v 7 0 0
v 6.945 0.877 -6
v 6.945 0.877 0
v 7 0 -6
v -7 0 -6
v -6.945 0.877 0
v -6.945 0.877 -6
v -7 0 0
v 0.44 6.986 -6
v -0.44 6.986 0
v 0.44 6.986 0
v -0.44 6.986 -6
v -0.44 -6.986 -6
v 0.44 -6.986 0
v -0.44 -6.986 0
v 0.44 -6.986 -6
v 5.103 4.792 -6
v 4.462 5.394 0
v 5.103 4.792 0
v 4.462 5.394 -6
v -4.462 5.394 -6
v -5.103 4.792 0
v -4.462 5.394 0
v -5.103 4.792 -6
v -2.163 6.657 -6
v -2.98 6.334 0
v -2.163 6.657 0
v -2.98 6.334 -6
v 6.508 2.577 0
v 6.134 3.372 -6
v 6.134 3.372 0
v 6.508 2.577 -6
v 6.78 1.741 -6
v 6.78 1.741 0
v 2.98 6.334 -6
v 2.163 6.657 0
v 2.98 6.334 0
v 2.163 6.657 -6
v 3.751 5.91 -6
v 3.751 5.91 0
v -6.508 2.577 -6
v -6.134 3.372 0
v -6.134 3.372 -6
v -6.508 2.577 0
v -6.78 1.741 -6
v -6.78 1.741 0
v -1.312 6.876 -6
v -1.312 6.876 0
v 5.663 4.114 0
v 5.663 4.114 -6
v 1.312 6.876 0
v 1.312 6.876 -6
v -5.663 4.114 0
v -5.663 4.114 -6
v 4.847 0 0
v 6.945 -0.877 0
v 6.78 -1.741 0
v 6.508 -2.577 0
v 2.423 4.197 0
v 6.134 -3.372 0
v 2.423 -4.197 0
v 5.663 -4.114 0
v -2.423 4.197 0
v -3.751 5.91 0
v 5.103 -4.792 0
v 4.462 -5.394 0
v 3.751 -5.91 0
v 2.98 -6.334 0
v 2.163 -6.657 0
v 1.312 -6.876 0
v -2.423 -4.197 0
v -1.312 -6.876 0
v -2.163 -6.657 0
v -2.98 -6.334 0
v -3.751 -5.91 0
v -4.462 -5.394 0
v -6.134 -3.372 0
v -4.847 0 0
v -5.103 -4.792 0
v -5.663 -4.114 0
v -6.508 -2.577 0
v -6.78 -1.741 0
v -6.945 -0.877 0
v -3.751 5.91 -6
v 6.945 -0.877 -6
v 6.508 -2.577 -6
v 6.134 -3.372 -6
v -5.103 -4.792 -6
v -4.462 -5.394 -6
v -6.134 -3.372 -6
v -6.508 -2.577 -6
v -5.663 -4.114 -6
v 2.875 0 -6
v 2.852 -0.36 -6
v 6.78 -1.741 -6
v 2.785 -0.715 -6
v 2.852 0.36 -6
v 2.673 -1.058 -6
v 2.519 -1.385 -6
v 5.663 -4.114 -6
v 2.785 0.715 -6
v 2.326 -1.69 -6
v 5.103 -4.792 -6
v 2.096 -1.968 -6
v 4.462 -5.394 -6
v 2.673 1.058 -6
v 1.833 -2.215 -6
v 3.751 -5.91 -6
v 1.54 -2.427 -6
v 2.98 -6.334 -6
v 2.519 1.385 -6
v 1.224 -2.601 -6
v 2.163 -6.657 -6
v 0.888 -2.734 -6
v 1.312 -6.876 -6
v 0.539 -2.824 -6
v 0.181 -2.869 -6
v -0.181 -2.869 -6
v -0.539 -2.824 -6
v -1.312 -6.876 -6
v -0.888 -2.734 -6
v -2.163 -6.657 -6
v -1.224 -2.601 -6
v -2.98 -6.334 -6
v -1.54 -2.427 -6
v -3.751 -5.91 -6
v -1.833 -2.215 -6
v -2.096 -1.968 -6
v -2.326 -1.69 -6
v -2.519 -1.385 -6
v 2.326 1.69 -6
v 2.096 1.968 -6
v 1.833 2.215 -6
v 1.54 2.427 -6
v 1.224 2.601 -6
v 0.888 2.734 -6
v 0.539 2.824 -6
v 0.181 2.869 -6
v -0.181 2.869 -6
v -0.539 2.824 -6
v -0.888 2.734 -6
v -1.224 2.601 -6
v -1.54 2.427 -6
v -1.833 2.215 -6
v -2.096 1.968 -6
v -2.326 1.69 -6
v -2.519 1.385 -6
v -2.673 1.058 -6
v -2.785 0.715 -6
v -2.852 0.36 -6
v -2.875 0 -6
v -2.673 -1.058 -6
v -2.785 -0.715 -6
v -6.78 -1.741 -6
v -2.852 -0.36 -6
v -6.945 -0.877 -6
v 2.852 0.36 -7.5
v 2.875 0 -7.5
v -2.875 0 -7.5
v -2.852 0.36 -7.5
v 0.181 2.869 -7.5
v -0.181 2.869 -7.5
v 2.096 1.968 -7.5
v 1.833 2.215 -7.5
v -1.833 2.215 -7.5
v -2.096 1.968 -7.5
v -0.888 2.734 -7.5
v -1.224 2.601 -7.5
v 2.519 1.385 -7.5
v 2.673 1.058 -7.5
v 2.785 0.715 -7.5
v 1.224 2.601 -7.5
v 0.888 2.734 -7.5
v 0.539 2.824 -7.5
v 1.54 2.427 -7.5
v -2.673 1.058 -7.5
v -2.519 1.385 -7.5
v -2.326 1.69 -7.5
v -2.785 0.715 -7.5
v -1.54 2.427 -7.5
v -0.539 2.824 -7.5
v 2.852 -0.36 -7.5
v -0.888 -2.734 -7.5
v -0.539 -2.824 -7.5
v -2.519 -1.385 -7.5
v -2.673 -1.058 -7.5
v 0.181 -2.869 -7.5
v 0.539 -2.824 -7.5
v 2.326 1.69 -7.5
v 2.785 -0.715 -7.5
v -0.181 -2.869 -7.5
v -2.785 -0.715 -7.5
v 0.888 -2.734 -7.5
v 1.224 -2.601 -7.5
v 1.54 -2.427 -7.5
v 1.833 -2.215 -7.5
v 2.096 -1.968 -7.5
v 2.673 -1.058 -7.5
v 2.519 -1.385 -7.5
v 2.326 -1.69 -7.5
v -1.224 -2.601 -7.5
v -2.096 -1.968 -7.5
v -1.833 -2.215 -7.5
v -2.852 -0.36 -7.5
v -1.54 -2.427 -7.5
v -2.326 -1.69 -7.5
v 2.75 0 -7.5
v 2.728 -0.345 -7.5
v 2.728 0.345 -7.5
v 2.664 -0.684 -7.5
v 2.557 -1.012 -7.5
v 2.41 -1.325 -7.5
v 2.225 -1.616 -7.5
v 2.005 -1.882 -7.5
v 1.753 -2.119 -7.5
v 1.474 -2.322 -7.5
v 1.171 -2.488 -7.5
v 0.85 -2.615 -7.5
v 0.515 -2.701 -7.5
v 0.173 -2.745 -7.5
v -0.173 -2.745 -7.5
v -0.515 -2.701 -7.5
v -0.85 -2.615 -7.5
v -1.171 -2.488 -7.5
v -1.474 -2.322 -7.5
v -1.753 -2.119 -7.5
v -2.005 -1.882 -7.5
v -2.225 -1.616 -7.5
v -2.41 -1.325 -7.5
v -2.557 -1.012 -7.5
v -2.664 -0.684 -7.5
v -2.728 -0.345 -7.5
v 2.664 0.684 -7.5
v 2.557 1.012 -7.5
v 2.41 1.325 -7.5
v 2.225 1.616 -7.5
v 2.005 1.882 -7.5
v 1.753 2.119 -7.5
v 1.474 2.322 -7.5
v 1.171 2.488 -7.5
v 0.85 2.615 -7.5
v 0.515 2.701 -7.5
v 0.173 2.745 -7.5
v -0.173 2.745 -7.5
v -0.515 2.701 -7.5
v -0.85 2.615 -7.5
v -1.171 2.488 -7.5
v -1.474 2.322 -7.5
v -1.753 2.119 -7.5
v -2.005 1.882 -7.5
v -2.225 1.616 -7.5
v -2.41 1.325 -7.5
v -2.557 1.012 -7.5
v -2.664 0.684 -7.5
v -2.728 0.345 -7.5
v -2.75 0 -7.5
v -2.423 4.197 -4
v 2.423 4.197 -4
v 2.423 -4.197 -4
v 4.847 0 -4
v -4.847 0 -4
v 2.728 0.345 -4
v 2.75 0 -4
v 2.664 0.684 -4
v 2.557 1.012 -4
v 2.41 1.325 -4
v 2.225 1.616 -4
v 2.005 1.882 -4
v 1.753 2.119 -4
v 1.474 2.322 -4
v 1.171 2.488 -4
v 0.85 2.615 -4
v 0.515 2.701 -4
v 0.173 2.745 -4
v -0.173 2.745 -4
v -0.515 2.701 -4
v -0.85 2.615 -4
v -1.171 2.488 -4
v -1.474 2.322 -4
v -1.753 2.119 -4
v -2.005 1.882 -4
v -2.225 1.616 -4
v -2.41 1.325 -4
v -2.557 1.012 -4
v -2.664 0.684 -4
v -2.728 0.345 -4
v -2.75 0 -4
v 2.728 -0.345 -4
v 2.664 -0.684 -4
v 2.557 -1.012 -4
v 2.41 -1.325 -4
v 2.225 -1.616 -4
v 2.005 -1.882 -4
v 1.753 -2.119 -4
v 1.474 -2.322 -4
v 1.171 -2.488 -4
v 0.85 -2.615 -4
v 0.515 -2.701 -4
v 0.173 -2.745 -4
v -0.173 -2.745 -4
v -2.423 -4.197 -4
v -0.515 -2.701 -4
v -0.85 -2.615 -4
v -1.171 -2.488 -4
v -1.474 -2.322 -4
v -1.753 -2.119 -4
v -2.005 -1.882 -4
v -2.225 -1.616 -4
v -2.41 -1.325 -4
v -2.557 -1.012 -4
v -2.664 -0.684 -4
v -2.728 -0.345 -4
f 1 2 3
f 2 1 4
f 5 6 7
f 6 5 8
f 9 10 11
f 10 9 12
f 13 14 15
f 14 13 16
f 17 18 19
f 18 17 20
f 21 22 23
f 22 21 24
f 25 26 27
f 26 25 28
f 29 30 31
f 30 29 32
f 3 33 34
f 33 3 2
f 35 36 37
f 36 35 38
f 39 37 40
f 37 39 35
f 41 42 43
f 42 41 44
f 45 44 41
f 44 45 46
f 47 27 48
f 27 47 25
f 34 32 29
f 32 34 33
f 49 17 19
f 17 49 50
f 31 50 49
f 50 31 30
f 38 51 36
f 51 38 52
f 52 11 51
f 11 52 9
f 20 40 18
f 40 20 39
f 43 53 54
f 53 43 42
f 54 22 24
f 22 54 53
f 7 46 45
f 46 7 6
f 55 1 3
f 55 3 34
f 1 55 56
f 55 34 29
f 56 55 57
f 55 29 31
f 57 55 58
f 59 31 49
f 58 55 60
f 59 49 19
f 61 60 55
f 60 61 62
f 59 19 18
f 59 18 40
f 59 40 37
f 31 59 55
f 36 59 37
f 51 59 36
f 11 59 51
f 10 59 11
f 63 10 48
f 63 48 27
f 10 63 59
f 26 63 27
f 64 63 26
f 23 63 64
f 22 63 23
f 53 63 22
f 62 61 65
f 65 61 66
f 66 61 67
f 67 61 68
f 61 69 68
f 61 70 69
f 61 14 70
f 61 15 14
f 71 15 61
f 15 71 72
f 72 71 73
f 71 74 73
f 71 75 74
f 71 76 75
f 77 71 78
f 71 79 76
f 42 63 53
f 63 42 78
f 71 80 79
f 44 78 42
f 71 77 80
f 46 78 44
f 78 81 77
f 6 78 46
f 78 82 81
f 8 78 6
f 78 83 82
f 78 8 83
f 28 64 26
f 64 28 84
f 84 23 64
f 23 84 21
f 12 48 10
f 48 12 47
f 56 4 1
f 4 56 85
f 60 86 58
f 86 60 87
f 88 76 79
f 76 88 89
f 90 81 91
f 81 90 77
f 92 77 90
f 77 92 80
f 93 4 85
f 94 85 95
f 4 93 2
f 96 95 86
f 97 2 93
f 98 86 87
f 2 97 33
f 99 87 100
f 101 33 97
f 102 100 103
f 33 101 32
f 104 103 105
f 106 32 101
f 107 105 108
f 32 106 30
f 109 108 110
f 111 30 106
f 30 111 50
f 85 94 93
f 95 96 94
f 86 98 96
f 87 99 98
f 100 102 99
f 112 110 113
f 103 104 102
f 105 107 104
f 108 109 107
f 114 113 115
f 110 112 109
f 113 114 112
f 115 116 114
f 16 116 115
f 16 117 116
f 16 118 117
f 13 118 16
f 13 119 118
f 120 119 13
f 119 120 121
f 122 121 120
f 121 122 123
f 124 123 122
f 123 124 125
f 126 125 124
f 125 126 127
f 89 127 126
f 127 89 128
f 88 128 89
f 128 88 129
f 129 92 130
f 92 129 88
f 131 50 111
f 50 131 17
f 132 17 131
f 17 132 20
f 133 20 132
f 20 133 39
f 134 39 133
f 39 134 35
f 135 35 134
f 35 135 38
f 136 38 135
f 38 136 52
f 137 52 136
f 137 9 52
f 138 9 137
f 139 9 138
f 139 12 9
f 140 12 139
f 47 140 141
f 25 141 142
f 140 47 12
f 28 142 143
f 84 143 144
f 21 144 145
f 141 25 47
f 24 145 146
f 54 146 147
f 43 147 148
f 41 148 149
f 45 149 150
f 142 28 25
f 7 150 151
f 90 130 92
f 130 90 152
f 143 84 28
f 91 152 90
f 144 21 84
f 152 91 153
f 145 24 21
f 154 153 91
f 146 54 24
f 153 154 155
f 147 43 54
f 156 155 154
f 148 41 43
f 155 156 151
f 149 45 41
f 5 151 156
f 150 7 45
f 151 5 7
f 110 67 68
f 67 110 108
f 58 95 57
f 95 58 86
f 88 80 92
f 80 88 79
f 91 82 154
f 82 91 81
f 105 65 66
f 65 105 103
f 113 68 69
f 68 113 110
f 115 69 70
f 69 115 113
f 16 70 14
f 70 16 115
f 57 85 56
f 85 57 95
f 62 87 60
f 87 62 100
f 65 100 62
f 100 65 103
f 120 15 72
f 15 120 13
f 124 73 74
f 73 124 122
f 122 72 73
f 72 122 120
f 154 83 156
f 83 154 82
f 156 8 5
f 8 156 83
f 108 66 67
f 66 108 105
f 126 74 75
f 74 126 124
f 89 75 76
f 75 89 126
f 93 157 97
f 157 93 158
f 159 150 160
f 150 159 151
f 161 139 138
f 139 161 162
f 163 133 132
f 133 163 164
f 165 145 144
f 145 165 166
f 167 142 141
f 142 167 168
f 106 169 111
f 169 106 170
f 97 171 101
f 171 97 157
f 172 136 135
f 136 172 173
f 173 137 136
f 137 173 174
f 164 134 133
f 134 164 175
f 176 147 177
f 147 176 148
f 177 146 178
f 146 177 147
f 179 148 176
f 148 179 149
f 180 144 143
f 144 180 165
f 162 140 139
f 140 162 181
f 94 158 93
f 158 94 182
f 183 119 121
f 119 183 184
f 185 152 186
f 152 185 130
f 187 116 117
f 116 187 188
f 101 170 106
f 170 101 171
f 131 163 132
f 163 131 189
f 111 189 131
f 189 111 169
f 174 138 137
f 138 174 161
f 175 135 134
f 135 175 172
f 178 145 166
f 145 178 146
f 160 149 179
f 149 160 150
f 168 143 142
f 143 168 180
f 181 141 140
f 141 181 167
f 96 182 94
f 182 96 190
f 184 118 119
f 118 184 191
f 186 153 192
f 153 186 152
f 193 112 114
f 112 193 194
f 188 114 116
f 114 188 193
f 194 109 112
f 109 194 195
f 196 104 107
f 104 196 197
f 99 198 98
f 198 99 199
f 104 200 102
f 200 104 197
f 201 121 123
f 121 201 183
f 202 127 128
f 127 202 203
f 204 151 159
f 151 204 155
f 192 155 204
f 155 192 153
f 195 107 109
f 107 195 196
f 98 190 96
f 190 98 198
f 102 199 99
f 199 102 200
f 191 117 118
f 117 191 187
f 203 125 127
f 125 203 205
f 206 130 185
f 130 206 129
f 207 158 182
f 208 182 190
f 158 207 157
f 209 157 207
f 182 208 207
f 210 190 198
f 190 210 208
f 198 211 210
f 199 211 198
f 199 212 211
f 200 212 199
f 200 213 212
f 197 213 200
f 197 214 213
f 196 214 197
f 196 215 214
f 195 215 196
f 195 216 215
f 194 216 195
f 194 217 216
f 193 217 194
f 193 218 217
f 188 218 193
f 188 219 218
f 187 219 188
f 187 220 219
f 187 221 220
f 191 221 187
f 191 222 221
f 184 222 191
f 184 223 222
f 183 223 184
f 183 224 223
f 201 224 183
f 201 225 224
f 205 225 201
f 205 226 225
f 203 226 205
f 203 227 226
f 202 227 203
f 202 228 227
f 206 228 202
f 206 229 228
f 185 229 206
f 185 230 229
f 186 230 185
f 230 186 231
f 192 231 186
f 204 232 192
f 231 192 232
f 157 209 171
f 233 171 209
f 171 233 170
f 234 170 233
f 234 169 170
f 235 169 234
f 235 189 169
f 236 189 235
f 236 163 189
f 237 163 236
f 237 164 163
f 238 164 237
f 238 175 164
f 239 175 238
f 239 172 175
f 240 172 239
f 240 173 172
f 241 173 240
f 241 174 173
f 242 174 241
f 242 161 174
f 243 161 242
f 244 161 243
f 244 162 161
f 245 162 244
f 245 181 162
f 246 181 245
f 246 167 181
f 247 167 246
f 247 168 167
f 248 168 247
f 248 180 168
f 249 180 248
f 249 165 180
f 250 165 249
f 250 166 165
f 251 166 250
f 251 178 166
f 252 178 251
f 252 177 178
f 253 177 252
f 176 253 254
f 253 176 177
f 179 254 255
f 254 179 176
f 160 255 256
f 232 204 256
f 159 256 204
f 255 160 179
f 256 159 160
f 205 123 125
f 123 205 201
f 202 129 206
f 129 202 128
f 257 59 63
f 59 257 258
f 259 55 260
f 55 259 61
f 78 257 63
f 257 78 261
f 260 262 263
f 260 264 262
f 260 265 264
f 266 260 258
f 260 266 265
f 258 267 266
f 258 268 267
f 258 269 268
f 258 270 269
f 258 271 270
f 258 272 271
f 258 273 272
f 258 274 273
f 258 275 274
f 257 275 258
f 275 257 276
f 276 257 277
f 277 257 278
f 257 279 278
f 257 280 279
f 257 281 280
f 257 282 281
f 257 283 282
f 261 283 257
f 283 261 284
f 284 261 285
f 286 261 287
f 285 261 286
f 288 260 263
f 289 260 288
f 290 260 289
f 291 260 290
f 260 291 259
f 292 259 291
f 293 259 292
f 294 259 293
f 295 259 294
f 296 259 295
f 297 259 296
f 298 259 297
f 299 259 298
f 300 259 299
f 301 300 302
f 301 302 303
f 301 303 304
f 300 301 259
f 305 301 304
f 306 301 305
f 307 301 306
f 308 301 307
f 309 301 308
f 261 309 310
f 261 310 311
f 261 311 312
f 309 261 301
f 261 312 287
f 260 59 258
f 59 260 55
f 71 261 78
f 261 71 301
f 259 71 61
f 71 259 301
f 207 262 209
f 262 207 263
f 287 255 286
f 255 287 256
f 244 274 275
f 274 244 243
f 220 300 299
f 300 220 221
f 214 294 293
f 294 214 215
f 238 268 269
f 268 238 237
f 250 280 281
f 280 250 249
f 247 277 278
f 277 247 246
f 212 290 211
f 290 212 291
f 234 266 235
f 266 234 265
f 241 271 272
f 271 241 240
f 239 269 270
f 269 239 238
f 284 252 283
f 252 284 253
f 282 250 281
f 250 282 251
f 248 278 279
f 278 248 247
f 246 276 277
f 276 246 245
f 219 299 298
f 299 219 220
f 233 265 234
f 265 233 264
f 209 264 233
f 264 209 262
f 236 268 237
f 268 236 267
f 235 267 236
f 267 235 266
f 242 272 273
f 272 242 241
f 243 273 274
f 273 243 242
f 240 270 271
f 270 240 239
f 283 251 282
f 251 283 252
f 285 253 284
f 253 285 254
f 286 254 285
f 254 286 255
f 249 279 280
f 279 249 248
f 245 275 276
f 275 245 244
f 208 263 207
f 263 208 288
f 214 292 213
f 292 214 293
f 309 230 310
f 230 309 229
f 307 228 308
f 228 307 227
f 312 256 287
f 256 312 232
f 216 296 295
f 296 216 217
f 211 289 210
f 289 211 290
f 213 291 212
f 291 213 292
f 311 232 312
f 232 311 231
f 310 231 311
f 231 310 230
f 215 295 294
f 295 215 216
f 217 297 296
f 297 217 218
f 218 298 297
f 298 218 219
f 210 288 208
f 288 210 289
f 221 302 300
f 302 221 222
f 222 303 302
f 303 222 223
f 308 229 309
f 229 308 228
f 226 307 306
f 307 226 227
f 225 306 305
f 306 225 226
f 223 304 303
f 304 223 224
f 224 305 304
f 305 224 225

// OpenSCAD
$fn = 50;


difference() {
	union() {
		translate(v = [0, 0, -6.0000000000]) {
			cylinder(h = 6.0000000000, r = 7.0000000000);
		}
		translate(v = [0, 0, -7.5000000000]) {
			cylinder(h = 7.5000000000, r = 2.8750000000);
		}
	}
	union() {
		translate(v = [0, 0, 0]) {
			rotate(a = [0, 0, 0]) {
				difference() {
					union() {
						translate(v = [0, 0, -4]) {
							linear_extrude(height = 4) {
								polygon(points = [[4.8468000000, 0.0000000000], [2.4234000000, 4.1974519271], [-2.4234000000, 4.1974519271], [-4.8468000000, 0.0000000000], [-2.4234000000, -4.1974519271], [2.4234000000, -4.1974519271]]);
							}
						}
					}
					union();
				}
			}
		}
		#translate(v = [0, 0, -100.0000000000]) {
			cylinder(h = 200, r = 2.7500000000);
		}
	}
}
